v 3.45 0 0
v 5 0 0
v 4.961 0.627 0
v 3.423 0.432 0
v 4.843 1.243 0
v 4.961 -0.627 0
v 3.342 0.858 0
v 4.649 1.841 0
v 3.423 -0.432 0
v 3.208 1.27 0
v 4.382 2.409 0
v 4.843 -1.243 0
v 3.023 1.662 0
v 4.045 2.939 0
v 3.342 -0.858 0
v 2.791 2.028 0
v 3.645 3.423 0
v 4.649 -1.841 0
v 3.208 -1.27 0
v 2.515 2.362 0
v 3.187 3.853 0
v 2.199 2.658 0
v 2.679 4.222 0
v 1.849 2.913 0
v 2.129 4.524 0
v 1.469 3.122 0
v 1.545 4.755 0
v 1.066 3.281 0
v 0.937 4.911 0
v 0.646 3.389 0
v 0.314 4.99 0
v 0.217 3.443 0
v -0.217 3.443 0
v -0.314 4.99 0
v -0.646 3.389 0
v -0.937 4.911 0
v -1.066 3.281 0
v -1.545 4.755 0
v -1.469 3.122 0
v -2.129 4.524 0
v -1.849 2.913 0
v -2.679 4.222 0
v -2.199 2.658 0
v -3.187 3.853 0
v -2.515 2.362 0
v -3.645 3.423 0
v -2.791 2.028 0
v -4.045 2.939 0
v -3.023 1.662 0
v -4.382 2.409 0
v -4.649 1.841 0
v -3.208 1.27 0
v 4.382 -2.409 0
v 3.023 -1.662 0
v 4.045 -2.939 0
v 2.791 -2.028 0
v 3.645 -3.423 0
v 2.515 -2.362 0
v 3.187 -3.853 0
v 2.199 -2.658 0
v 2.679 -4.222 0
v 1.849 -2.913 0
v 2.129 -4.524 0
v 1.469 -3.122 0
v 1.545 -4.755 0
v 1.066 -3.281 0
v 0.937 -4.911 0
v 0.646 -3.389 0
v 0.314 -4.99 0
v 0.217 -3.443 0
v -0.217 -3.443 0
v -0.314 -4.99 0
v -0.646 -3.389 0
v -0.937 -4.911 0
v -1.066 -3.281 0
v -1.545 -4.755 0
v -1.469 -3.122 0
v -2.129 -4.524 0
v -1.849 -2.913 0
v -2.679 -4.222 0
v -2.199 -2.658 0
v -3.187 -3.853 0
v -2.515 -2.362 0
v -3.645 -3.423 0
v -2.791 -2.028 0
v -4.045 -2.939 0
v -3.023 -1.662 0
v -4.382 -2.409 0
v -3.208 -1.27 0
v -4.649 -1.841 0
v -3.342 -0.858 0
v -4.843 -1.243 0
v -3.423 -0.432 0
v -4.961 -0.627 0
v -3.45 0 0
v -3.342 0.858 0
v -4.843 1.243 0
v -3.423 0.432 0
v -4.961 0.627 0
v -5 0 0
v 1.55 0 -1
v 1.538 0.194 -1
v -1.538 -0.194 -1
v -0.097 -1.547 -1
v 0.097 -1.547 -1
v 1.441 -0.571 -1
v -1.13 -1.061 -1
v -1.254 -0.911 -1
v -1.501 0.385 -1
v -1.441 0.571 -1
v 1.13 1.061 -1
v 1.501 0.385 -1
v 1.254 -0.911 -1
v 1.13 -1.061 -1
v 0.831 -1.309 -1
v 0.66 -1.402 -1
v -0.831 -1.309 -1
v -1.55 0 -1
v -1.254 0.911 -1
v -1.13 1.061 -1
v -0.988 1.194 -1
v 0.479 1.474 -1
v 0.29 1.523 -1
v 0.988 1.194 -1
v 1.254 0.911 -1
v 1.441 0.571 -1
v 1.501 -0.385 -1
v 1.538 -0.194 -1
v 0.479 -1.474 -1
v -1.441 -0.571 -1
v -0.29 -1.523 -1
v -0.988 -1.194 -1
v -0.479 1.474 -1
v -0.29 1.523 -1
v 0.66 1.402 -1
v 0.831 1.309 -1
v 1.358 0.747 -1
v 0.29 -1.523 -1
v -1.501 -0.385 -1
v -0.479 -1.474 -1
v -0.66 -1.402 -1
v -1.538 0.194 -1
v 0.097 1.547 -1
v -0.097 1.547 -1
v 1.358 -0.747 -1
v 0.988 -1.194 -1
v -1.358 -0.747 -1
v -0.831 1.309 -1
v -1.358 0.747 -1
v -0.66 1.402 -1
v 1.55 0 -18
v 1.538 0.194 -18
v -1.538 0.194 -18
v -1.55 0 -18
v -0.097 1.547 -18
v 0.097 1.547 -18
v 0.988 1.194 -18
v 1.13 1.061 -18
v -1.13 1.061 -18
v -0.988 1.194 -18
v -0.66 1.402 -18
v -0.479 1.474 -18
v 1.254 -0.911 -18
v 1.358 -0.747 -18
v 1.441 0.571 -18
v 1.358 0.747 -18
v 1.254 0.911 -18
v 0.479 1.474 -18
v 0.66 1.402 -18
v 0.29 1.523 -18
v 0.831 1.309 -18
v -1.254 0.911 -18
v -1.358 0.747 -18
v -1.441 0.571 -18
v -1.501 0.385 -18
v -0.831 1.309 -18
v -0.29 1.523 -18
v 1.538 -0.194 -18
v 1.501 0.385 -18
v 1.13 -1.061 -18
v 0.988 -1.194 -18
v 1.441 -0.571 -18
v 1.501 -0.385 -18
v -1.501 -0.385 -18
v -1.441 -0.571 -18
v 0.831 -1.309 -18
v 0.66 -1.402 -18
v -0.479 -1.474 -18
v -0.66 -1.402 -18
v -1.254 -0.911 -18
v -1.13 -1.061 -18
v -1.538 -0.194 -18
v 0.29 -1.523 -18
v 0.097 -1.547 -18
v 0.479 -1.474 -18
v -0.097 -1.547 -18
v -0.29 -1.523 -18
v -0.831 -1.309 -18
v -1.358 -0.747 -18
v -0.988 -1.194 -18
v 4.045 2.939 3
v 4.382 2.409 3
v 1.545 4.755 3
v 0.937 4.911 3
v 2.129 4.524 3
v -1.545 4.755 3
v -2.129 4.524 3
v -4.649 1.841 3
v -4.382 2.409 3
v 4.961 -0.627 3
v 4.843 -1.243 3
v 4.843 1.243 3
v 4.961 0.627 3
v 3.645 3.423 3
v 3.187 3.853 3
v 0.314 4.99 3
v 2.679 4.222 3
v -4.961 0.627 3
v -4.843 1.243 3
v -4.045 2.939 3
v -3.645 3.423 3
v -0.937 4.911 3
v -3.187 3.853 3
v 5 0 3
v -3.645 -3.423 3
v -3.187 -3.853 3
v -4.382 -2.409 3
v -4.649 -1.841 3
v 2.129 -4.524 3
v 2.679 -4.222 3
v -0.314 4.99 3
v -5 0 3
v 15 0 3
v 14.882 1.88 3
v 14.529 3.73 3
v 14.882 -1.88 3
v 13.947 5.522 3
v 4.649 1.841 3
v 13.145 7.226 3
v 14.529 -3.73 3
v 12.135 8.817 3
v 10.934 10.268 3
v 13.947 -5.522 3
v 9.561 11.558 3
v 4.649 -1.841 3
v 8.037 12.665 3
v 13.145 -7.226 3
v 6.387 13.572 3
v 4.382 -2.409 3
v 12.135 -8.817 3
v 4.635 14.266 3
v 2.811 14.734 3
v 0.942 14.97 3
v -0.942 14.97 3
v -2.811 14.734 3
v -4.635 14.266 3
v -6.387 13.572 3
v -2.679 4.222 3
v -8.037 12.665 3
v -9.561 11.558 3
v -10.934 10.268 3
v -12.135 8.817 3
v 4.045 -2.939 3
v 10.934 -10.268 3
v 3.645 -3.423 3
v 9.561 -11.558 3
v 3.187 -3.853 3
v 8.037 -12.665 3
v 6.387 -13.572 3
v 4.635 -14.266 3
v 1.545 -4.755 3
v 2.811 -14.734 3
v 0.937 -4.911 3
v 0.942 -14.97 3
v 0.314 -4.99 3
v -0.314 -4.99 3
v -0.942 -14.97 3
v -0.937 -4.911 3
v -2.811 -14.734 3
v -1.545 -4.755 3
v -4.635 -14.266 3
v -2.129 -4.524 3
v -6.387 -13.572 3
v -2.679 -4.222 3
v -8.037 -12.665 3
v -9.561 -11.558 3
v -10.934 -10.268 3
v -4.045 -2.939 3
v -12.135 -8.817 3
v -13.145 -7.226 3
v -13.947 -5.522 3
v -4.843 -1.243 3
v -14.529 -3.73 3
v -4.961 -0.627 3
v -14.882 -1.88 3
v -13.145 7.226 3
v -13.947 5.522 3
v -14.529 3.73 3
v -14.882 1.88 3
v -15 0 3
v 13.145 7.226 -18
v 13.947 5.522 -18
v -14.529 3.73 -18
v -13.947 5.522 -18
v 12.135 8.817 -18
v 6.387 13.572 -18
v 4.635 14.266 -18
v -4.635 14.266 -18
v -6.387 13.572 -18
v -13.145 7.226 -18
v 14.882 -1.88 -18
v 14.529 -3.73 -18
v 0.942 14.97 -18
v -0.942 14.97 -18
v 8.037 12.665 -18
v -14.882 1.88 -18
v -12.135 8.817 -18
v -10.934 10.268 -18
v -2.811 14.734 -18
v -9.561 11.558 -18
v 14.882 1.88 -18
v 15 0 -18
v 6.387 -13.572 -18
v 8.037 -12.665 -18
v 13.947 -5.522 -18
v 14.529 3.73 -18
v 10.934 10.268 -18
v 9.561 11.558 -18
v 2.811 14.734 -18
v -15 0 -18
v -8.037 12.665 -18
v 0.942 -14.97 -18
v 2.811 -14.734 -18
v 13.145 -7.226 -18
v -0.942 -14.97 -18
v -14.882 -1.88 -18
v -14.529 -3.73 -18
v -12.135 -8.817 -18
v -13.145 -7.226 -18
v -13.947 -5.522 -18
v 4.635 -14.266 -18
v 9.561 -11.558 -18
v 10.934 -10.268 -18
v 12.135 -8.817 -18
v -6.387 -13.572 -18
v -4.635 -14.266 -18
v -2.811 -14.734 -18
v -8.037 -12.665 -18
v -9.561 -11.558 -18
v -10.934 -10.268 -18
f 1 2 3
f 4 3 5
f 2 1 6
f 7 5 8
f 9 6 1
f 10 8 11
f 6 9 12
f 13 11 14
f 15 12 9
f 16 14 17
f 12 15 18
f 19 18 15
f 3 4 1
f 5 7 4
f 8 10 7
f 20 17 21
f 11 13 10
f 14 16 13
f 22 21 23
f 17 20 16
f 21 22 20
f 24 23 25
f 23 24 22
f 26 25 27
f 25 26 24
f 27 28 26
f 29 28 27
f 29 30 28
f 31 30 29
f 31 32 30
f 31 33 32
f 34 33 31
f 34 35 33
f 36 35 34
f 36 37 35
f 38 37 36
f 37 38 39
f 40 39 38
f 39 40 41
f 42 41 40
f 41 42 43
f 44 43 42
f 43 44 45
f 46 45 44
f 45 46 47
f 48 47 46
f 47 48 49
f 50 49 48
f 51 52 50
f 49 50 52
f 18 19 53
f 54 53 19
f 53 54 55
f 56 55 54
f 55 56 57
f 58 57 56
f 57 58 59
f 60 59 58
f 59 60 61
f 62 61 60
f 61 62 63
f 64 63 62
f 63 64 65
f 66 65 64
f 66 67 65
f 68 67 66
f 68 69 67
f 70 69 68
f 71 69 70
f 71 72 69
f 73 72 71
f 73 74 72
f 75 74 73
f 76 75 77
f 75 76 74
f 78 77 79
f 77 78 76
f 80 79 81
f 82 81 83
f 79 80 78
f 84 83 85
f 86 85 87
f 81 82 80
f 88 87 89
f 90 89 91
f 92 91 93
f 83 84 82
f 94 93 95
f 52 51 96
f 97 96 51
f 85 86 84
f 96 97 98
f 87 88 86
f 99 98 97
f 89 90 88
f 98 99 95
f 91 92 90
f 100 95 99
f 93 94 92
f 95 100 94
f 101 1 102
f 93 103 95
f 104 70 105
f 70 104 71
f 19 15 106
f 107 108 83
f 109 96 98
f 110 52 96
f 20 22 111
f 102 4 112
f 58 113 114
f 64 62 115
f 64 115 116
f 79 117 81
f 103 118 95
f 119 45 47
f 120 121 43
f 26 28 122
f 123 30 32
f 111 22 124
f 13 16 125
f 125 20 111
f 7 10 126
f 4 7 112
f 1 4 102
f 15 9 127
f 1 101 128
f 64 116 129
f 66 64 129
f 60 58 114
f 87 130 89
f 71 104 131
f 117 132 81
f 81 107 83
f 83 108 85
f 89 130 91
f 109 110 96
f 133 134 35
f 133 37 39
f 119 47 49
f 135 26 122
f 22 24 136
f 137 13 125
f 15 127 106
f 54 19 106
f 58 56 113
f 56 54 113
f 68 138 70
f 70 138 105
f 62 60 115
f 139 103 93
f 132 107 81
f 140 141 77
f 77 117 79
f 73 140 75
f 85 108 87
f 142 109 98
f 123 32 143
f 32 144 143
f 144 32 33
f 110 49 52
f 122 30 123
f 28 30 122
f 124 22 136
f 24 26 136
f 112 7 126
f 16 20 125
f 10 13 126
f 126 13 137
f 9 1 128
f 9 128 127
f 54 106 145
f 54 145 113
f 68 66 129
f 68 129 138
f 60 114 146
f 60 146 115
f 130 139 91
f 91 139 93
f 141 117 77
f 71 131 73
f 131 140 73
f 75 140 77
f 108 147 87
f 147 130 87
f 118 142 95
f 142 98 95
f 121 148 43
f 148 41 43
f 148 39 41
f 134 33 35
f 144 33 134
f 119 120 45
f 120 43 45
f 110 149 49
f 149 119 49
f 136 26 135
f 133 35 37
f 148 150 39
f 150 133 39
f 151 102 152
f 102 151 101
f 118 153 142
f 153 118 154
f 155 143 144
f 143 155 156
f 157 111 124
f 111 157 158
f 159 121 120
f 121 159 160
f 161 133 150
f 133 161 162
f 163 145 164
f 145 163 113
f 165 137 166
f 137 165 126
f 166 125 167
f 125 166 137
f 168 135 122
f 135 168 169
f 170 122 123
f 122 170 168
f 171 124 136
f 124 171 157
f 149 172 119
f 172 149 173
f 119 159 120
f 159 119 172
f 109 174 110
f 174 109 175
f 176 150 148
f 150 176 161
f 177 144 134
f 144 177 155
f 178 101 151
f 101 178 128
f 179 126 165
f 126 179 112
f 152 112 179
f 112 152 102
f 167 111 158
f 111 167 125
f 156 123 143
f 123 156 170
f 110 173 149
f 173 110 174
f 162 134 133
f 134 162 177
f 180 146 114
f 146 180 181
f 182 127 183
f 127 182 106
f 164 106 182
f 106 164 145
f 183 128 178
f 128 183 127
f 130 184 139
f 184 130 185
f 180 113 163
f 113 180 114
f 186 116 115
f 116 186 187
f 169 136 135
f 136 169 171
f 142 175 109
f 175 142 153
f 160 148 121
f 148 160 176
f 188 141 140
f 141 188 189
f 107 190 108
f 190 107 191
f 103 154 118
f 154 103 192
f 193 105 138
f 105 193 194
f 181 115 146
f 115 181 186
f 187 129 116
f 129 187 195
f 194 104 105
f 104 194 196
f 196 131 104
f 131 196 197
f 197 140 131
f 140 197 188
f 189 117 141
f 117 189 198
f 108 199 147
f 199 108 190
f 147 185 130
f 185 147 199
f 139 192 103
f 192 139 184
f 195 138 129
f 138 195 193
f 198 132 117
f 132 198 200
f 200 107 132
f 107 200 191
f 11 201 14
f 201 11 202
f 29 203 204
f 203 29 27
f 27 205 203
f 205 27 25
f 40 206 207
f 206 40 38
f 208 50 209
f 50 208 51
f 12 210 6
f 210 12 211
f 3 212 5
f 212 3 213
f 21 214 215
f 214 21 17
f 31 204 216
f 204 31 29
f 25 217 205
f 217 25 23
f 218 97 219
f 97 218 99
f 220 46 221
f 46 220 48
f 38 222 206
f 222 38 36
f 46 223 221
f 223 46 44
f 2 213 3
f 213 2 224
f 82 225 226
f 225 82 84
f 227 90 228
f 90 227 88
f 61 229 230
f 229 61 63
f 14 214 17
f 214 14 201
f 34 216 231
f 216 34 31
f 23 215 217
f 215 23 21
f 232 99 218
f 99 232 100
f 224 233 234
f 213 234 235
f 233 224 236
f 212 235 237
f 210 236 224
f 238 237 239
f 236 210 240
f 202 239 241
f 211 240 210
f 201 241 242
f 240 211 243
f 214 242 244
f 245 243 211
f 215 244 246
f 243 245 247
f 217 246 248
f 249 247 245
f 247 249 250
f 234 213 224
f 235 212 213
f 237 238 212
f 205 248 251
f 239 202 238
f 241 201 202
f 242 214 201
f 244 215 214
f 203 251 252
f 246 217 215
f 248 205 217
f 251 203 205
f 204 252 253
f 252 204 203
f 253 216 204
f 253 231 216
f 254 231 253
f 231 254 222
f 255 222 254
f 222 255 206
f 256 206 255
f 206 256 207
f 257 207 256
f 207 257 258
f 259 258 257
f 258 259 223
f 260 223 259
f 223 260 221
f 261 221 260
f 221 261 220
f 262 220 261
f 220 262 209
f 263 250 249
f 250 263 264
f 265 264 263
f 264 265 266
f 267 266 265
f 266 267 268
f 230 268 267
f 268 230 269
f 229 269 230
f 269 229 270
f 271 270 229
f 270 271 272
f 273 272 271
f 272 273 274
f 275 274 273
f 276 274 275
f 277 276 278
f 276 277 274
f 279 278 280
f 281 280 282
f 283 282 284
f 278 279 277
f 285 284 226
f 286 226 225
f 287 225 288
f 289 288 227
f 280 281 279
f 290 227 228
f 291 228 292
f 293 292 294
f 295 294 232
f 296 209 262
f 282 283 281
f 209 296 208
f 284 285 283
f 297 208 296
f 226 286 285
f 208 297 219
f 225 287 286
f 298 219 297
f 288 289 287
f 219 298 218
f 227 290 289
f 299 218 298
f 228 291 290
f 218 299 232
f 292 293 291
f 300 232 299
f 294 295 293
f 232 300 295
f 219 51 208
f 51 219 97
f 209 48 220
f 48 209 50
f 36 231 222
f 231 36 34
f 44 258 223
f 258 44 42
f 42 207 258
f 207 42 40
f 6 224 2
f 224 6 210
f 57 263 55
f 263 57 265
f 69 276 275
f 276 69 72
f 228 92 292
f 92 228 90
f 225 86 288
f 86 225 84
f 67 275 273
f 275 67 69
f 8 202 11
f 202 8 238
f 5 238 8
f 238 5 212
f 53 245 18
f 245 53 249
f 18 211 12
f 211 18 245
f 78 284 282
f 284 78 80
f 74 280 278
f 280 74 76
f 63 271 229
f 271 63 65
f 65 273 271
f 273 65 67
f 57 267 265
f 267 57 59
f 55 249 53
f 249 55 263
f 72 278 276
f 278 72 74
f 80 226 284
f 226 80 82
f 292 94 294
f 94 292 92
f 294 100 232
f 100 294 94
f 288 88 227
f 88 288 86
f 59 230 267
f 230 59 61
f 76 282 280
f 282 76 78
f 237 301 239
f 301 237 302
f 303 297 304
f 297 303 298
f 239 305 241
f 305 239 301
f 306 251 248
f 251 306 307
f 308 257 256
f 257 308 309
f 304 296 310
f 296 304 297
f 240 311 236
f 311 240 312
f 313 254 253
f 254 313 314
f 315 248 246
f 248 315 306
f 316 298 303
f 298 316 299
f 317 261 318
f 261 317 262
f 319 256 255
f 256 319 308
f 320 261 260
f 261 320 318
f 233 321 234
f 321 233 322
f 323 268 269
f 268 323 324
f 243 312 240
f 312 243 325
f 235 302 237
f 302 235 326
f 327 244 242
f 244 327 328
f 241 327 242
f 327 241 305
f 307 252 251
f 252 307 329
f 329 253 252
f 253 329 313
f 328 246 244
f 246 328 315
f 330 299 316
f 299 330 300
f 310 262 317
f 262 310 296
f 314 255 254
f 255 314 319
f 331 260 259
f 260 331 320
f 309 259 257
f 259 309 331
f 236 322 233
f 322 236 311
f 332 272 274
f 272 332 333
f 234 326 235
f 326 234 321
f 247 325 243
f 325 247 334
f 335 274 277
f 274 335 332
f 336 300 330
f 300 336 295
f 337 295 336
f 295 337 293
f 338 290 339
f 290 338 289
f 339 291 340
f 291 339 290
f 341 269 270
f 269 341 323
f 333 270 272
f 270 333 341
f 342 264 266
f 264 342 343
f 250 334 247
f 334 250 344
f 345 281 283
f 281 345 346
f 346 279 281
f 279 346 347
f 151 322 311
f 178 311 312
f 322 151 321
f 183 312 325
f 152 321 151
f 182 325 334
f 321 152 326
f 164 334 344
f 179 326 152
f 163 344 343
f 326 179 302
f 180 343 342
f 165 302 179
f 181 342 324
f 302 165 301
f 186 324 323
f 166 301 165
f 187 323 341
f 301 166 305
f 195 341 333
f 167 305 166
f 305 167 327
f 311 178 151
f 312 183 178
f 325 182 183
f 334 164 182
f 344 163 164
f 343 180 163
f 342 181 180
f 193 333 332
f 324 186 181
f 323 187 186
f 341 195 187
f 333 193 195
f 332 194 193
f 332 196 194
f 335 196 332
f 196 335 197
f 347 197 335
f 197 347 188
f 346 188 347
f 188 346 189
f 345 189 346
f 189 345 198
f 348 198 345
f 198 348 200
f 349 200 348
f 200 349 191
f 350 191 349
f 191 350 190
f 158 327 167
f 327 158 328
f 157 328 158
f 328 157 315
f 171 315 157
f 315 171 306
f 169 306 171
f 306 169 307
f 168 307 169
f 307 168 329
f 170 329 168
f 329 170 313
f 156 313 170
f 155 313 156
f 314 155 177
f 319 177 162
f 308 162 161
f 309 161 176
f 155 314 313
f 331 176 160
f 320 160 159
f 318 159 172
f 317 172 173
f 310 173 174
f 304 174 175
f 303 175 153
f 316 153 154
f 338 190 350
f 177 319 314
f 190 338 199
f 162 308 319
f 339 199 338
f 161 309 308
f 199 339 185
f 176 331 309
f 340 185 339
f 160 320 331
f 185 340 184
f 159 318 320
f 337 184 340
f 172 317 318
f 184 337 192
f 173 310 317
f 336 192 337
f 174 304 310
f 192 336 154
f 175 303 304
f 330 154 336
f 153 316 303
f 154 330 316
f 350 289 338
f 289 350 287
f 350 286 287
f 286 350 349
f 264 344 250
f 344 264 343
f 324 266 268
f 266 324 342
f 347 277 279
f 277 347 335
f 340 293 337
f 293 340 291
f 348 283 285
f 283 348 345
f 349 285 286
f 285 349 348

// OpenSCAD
$fn = 50;


difference() {
	union() {
		translate(v = [0, 0, -18.0000000000]) {
			cylinder(h = 21, r = 15.0000000000);
		}
	}
	union() {
		translate(v = [0, 0, 0]) {
			rotate(a = [0, 0, 0]) {
				difference() {
					union() {
						translate(v = [0, 0, -21.0000000000]) {
							cylinder(h = 21, r = 1.2500000000);
						}
						translate(v = [0, 0, -1.0000000000]) {
							cylinder(h = 1.0000000000, r1 = 1.5500000000, r2 = 3.4500000000);
						}
						translate(v = [0, 0, -21.0000000000]) {
							cylinder(h = 21, r = 1.5500000000);
						}
						translate(v = [0, 0, -21.0000000000]) {
							cylinder(h = 21, r = 1.2500000000);
						}
					}
					union();
				}
			}
		}
		#cylinder(h = 3, r = 5.0000000000);
	}
}
